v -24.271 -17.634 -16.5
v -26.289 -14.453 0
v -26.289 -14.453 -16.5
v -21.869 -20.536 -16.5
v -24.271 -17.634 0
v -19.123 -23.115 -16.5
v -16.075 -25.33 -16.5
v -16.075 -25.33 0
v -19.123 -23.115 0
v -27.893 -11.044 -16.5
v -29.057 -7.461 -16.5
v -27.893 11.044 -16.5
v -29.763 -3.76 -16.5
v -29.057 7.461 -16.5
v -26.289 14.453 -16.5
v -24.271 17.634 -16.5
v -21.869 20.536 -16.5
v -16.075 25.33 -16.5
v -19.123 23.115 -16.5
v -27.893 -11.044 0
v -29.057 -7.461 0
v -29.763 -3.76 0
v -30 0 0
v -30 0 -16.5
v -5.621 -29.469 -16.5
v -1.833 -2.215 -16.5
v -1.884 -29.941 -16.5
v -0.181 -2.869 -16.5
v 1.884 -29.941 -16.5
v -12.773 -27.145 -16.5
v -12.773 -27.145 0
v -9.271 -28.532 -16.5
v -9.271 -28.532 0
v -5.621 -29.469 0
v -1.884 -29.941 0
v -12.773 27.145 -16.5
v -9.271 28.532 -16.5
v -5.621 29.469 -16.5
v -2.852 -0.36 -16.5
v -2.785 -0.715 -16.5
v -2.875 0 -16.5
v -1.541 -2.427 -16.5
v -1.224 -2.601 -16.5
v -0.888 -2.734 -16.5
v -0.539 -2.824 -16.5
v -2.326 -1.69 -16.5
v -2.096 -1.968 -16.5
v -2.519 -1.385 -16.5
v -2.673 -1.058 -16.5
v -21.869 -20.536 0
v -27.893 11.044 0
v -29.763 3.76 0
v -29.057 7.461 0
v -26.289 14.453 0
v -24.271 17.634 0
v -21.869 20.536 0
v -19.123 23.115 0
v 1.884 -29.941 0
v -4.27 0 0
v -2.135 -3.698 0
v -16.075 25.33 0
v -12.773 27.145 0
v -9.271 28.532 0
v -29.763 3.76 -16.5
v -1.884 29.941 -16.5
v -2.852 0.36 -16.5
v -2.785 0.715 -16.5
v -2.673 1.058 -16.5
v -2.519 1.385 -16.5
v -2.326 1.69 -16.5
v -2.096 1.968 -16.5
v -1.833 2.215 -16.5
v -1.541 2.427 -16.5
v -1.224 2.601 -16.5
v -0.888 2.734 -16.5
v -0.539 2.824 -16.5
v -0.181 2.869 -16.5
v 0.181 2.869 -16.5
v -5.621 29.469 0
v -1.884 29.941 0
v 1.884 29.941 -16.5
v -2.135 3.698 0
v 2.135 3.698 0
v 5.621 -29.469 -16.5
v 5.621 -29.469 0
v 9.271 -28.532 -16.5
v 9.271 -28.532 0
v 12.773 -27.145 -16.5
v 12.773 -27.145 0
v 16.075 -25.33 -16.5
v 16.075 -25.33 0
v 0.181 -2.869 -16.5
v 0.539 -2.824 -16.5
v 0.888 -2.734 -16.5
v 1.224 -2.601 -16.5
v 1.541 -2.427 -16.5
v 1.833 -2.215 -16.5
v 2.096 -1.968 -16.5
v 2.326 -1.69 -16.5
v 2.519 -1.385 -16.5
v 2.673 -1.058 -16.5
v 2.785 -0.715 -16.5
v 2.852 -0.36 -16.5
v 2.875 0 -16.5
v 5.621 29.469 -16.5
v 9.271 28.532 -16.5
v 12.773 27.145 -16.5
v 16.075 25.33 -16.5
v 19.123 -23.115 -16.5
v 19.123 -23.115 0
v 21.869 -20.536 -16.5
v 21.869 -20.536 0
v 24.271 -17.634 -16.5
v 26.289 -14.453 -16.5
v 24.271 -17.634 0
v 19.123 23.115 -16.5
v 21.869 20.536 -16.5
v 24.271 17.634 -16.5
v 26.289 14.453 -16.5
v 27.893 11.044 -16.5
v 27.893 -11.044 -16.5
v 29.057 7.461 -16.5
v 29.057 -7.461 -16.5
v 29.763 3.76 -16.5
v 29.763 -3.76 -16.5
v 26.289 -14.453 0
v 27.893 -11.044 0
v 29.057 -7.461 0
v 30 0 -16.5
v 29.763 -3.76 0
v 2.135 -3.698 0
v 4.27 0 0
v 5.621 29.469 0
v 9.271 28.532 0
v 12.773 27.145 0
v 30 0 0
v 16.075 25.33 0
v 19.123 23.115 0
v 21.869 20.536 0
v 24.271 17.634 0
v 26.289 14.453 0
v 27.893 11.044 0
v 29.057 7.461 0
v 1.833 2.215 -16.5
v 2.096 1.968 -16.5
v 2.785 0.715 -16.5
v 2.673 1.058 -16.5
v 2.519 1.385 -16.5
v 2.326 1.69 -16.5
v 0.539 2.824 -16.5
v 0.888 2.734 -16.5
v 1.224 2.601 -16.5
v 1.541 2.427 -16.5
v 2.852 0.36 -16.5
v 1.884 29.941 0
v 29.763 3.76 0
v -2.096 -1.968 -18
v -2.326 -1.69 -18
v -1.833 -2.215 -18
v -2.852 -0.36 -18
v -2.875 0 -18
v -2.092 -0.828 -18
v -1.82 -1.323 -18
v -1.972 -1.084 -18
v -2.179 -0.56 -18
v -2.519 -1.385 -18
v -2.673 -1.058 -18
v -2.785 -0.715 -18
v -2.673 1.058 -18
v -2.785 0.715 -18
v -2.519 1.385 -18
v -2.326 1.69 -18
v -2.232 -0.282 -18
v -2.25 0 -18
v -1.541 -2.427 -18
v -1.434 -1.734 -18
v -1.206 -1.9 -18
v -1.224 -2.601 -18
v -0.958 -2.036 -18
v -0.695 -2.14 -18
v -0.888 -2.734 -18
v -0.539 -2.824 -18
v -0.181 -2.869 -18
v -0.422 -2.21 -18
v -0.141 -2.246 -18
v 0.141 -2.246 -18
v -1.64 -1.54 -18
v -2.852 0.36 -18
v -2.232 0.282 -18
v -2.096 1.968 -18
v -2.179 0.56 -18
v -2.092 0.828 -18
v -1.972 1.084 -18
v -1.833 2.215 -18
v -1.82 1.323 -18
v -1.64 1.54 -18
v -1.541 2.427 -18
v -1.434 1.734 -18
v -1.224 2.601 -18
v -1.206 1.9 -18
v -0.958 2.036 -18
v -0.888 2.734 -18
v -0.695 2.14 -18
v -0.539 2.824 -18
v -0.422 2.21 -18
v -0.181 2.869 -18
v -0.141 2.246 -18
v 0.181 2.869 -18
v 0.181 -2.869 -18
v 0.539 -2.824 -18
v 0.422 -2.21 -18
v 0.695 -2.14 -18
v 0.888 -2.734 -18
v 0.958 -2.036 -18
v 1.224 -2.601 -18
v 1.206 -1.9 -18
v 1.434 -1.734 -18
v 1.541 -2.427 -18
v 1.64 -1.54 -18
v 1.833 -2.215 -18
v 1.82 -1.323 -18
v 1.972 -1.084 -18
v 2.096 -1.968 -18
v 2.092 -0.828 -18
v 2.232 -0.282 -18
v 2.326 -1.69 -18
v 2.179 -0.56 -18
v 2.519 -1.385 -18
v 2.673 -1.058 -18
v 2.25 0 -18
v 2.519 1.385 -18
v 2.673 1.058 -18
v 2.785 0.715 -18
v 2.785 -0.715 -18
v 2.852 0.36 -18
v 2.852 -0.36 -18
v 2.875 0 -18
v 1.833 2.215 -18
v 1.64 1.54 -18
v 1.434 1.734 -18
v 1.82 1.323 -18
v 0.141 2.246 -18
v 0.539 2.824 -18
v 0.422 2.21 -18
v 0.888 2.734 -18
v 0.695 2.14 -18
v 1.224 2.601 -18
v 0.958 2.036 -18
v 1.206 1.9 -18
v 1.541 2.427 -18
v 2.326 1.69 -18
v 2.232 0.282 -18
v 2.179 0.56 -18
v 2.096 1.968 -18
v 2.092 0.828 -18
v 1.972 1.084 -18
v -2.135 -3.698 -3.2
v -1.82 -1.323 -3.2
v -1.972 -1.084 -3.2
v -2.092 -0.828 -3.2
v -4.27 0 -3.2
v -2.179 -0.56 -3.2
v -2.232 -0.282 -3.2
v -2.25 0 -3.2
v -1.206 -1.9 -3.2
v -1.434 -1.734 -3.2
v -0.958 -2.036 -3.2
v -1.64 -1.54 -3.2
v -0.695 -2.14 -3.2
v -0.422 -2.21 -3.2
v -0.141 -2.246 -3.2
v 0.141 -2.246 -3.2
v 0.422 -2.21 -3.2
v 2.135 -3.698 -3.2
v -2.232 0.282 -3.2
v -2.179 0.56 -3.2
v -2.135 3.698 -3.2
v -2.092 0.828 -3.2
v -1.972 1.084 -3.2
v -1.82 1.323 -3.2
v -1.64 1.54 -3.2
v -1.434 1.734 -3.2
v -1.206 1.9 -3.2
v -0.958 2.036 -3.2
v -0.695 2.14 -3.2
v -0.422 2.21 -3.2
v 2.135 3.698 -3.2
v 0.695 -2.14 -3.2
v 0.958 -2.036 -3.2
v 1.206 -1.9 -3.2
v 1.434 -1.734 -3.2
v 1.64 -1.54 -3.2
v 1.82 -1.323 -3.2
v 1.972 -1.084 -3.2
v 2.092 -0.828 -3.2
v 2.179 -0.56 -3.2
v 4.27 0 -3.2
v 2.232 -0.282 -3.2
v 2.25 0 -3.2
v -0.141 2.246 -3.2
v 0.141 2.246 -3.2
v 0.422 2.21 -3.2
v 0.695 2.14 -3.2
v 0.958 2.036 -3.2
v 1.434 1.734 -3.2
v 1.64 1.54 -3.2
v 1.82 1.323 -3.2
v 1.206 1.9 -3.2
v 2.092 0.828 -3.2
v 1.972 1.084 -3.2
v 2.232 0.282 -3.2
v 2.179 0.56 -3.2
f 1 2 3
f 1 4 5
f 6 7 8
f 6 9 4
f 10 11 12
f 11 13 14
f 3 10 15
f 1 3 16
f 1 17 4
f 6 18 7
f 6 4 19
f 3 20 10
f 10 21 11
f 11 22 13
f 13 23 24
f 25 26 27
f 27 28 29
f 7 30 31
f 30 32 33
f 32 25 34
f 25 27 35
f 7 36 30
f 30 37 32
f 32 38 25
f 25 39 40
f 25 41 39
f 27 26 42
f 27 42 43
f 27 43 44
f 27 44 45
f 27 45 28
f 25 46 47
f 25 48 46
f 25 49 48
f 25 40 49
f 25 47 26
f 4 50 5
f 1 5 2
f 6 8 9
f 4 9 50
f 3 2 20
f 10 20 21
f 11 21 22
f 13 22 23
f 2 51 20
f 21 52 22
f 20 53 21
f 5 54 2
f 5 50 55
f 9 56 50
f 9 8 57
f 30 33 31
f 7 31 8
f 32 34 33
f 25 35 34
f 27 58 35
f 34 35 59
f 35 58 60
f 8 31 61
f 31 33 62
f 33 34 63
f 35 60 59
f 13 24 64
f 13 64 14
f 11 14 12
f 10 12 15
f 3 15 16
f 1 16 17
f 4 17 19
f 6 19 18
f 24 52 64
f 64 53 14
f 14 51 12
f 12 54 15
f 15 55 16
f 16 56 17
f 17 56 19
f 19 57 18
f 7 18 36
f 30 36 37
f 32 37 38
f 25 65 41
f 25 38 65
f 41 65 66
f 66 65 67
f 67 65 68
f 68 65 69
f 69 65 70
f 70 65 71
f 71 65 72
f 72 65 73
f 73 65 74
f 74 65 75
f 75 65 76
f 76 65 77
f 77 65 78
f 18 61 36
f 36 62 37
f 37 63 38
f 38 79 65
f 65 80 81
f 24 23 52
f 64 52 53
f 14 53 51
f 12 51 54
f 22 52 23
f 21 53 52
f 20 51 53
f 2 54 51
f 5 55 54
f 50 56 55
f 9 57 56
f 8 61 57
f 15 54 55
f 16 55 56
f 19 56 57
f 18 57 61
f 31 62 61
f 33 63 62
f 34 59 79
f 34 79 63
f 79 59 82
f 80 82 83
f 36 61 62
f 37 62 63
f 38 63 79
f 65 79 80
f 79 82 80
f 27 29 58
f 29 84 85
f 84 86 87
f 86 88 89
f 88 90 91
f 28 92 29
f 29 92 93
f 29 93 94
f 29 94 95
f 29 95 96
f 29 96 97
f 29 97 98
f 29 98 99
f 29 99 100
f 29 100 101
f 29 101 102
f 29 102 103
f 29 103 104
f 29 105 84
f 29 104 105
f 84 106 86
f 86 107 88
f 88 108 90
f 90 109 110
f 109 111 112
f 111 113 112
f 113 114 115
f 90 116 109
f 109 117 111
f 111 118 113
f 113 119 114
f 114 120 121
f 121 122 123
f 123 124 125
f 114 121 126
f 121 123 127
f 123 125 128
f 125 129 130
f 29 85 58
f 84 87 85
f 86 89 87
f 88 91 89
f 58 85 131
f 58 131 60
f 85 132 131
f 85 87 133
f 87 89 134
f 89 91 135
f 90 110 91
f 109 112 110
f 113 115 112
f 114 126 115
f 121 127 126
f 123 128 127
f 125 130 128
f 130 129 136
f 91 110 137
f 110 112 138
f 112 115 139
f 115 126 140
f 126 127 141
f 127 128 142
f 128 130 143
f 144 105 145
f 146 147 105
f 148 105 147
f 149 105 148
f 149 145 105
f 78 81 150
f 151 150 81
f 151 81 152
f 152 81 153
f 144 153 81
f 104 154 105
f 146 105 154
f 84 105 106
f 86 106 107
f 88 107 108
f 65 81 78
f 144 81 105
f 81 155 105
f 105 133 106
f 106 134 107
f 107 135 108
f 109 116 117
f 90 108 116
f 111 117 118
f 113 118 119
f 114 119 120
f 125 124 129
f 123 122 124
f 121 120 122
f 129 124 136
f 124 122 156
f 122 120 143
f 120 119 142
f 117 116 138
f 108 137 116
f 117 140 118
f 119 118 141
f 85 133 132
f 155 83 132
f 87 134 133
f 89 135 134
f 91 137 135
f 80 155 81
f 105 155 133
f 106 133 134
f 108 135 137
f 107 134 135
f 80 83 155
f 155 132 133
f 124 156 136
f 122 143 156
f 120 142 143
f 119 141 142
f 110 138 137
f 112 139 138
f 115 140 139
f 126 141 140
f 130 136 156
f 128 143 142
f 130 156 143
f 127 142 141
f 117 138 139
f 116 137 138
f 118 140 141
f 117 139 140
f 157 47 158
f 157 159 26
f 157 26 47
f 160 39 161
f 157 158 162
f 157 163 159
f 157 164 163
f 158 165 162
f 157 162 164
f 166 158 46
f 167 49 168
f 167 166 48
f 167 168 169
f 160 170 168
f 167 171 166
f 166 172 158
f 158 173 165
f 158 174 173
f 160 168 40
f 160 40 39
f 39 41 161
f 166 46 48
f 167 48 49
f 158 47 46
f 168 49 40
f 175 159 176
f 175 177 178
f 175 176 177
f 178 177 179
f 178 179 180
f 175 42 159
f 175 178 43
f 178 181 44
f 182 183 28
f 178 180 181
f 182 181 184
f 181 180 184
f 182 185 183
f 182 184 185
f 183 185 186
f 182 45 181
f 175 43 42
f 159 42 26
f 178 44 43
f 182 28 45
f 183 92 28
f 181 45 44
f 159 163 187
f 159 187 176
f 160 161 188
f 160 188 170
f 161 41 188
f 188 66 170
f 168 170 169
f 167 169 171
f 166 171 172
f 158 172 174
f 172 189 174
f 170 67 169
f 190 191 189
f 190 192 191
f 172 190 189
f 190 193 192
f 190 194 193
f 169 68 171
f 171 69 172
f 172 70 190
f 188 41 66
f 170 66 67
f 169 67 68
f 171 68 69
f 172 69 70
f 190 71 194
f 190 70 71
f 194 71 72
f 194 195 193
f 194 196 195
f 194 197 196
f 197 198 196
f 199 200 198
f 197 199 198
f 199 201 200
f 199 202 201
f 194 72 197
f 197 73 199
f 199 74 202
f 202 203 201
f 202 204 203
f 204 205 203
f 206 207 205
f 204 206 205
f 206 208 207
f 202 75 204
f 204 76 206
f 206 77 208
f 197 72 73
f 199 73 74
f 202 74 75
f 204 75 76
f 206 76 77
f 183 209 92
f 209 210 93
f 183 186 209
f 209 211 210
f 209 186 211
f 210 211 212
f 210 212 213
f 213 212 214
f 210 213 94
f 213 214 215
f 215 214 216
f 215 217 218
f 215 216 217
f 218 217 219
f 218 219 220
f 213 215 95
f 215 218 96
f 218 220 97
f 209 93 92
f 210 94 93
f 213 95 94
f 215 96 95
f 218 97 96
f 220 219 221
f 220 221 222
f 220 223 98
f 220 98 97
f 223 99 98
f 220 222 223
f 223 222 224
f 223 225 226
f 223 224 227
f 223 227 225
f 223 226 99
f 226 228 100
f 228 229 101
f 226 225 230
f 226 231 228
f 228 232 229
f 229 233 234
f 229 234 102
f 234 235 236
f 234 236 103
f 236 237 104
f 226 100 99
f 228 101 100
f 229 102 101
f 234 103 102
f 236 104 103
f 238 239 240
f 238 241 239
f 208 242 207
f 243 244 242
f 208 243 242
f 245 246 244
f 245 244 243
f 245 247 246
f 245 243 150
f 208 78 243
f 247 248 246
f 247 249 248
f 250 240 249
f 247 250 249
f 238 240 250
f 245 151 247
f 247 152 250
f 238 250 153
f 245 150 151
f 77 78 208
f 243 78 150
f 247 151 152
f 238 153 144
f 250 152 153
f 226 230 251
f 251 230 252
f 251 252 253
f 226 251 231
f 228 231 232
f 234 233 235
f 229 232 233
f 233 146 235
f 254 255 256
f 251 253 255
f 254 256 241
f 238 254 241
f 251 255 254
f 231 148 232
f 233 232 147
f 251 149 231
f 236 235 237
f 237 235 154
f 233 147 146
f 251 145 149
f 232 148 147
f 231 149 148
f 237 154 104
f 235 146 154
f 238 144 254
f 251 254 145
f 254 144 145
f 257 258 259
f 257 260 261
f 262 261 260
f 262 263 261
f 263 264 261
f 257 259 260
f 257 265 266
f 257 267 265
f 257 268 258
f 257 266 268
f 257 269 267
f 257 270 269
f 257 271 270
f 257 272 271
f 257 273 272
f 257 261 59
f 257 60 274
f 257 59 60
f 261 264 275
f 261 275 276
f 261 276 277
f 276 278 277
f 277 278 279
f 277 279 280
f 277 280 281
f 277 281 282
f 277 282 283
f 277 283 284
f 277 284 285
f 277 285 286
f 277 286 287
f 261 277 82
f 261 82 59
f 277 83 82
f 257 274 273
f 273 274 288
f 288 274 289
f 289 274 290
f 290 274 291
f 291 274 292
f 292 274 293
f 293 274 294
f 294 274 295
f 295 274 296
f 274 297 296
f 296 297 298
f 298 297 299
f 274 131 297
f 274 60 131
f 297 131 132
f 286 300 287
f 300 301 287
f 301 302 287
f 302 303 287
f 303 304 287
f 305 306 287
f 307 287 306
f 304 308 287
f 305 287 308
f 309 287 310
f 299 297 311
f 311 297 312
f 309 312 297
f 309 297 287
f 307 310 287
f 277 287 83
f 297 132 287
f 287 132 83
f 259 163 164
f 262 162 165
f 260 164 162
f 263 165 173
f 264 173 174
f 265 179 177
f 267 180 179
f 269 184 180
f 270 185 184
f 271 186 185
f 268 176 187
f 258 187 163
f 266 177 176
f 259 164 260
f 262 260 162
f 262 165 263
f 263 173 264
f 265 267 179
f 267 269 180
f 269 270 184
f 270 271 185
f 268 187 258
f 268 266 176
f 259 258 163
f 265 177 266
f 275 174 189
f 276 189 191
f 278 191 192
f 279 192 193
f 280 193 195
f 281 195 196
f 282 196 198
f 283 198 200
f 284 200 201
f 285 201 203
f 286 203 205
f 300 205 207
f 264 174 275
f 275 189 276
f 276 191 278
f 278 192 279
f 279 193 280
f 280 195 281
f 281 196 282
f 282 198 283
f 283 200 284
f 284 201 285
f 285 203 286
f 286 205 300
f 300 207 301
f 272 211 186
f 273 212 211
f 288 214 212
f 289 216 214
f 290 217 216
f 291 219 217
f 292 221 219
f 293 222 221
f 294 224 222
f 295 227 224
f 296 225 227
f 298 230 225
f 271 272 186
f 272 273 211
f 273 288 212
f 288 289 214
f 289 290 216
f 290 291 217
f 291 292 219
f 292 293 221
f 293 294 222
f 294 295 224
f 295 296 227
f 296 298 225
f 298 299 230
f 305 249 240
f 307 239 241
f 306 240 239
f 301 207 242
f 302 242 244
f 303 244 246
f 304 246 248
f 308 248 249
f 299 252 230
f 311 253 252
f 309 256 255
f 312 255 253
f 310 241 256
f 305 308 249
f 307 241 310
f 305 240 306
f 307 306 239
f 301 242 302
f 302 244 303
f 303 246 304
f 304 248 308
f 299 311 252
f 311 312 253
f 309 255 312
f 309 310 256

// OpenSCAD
$fn = 50;


difference() {
	union() {
		translate(v = [0, 0, -16.5000000000]) {
			cylinder(h = 16.5000000000, r = 30.0000000000);
		}
		#translate(v = [0, 0, -18.0000000000]) {
			cylinder(h = 18, r = 2.8750000000);
		}
	}
	union() {
		translate(v = [0, 0, 0]) {
			rotate(a = [0, 0, 0]) {
				difference() {
					union() {
						translate(v = [0, 0, -3.2000000000]) {
							linear_extrude(height = 3.2000000000) {
								polygon(points = [[4.2698000000, 0.0000000000], [2.1349000000, 3.6977552691], [-2.1349000000, 3.6977552691], [-4.2698000000, 0.0000000000], [-2.1349000000, -3.6977552691], [2.1349000000, -3.6977552691]]);
							}
						}
					}
					union();
				}
			}
		}
		#translate(v = [0, 0, -100.0000000000]) {
			cylinder(h = 200, r = 2.2500000000);
		}
	}
}
